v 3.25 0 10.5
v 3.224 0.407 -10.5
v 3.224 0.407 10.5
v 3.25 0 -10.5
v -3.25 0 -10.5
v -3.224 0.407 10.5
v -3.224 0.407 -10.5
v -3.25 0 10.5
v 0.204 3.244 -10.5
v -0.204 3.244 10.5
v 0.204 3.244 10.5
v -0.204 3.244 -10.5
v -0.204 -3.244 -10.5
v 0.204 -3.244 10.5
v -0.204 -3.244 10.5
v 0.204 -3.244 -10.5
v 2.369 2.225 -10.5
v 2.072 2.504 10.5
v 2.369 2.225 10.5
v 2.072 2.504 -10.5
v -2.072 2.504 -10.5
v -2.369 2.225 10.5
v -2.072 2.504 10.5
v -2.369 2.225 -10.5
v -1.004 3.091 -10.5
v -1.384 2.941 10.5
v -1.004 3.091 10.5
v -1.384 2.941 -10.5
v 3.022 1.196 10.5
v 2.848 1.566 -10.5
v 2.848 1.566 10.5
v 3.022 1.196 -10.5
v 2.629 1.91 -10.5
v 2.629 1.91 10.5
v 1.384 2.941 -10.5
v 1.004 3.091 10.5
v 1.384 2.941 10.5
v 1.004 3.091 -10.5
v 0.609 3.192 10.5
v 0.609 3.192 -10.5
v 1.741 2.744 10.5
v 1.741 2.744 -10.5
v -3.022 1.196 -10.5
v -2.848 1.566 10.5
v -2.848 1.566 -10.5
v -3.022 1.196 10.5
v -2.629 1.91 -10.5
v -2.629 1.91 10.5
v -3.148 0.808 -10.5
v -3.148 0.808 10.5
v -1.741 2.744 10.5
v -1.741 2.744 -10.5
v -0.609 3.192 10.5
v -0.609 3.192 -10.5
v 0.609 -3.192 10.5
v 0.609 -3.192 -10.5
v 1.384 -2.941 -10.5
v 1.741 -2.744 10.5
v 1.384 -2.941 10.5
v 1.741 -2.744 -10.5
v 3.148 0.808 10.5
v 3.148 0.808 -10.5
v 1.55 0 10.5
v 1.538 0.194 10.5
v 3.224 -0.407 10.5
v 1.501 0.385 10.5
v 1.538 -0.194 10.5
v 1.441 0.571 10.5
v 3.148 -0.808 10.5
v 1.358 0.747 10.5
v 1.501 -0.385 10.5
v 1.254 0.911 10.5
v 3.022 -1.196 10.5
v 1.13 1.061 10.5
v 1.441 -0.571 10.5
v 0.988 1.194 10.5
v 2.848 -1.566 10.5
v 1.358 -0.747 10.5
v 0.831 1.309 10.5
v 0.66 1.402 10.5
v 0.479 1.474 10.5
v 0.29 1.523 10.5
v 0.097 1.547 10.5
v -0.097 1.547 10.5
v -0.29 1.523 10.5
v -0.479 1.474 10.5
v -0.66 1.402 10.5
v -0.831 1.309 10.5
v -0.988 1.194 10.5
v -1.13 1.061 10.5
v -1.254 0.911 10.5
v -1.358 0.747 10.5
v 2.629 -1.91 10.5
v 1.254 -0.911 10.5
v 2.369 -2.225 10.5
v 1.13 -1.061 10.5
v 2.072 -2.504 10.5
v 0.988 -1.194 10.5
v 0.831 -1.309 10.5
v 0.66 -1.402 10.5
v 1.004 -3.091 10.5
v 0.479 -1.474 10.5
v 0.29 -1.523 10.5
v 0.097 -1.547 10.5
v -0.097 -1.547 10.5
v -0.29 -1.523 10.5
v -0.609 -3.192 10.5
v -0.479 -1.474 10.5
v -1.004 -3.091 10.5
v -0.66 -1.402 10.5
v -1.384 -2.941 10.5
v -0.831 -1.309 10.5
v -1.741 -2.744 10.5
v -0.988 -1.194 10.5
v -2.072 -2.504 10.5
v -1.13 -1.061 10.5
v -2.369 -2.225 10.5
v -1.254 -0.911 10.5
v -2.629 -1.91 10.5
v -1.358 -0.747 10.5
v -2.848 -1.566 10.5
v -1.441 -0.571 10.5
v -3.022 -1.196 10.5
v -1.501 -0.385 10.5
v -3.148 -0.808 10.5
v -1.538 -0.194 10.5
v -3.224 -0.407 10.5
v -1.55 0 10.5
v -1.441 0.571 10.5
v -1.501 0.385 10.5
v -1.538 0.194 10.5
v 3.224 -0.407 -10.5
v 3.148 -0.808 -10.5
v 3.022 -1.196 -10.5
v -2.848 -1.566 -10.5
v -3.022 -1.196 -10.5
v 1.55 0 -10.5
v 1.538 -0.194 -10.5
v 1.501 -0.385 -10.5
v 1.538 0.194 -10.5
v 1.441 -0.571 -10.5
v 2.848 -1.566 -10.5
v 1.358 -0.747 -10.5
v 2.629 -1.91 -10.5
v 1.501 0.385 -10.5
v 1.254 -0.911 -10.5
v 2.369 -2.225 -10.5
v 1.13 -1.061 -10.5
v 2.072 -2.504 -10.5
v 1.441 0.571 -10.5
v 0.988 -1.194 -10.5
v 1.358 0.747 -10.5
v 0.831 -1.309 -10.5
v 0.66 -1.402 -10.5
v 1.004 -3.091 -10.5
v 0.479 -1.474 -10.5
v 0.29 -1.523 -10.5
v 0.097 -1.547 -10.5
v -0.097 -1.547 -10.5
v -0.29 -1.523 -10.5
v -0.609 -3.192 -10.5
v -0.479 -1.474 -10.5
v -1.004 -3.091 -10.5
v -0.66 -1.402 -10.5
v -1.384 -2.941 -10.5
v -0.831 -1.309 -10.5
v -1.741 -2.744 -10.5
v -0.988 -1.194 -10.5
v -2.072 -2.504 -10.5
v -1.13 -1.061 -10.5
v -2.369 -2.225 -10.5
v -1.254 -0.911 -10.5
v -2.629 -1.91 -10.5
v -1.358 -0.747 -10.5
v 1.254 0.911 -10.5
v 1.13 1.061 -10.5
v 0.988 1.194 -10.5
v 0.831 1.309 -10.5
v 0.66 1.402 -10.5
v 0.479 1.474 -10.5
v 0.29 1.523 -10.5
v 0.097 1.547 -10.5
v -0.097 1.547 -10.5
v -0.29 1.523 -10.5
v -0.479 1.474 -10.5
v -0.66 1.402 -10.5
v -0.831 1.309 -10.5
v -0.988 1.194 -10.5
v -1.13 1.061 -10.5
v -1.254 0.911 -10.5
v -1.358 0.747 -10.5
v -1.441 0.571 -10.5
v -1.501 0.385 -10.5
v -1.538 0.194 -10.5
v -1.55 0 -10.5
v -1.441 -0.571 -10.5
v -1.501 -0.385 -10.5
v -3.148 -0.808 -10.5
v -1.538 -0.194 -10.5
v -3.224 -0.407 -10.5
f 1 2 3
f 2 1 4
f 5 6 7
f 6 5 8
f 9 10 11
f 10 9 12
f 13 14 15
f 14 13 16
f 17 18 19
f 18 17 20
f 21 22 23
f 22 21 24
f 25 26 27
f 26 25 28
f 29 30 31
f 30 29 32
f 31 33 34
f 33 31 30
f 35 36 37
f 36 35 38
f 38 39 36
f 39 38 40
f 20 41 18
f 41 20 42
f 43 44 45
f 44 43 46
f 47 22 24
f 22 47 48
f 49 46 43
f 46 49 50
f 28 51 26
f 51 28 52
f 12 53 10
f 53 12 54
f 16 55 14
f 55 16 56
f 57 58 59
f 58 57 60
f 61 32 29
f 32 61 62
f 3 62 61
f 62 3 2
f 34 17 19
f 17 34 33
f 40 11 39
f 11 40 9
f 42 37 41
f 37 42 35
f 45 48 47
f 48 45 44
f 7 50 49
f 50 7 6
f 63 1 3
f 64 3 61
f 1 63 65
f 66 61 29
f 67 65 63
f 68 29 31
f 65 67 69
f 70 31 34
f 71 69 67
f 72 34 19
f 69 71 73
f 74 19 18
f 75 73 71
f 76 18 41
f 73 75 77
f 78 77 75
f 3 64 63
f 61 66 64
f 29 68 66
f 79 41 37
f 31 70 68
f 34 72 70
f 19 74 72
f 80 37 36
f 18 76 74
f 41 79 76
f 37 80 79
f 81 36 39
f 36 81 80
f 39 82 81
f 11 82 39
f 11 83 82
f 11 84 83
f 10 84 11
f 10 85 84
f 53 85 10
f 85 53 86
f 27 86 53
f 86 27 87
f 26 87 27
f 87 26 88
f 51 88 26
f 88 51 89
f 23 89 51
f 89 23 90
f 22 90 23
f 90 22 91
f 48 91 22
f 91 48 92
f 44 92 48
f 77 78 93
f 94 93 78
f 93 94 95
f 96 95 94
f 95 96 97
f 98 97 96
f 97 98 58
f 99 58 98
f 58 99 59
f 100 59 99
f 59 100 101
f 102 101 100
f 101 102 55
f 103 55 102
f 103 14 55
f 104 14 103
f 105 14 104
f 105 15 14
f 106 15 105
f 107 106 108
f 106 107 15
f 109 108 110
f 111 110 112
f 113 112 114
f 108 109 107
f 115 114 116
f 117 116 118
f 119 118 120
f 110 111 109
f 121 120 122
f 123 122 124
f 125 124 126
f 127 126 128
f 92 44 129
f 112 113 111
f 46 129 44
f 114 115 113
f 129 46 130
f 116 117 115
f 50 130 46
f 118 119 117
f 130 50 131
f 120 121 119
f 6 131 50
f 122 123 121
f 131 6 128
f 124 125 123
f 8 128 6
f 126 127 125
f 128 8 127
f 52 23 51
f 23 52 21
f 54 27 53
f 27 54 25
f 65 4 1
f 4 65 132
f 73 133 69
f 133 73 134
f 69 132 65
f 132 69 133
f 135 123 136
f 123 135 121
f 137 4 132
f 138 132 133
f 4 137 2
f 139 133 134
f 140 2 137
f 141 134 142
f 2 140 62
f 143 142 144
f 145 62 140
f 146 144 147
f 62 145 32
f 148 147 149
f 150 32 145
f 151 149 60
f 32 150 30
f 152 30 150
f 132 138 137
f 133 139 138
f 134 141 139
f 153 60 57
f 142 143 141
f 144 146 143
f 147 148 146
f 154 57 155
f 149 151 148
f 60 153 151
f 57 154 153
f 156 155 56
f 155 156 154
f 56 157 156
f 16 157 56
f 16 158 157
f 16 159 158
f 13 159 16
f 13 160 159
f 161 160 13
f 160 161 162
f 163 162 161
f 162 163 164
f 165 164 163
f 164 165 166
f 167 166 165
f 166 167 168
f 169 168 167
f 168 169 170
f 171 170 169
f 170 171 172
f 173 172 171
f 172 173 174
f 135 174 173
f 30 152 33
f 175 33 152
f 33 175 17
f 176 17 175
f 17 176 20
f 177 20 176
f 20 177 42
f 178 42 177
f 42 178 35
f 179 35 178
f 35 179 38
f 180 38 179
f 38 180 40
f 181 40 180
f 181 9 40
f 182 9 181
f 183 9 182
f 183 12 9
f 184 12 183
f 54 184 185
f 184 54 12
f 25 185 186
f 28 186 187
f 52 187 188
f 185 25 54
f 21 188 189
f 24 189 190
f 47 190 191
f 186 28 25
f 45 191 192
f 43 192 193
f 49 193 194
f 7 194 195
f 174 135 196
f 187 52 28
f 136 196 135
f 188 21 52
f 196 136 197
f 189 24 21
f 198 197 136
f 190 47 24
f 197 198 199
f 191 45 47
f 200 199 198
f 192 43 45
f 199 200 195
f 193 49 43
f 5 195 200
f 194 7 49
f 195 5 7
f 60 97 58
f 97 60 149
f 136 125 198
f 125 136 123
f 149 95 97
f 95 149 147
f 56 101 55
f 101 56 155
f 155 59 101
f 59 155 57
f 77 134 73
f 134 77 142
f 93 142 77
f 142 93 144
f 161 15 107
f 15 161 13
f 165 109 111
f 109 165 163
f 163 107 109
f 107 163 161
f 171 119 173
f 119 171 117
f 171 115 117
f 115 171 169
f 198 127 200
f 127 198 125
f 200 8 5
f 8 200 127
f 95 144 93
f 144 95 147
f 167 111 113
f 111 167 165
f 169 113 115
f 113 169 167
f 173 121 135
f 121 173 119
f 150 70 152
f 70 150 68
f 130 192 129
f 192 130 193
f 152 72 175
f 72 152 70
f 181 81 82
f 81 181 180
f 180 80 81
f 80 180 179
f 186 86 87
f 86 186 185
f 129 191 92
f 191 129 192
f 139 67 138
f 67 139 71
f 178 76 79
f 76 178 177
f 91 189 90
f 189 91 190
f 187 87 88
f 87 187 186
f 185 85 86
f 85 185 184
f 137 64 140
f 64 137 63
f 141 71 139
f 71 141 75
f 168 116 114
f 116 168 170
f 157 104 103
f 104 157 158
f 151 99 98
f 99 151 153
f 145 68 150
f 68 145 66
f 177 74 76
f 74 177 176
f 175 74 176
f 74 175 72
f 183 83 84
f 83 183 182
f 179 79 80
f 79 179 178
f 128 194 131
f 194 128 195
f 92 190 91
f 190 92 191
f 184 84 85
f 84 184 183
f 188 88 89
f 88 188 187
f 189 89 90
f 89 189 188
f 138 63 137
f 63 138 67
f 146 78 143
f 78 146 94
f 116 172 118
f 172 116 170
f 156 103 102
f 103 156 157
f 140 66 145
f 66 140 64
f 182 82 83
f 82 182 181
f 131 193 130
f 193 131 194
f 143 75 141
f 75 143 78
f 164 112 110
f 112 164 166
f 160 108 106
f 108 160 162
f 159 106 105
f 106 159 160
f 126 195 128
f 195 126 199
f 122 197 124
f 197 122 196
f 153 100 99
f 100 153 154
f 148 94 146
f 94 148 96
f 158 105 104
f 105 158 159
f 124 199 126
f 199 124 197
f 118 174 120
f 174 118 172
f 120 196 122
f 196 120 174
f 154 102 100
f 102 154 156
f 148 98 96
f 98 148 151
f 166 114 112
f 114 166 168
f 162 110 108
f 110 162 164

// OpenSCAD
$fn = 50;


difference() {
	union() {
		translate(v = [0, 0, -10.5000000000]) {
			cylinder(h = 21, r = 3.2500000000);
		}
	}
	union() {
		translate(v = [0, 0, -100.0000000000]) {
			cylinder(h = 200, r = 1.5500000000);
		}
	}
}
